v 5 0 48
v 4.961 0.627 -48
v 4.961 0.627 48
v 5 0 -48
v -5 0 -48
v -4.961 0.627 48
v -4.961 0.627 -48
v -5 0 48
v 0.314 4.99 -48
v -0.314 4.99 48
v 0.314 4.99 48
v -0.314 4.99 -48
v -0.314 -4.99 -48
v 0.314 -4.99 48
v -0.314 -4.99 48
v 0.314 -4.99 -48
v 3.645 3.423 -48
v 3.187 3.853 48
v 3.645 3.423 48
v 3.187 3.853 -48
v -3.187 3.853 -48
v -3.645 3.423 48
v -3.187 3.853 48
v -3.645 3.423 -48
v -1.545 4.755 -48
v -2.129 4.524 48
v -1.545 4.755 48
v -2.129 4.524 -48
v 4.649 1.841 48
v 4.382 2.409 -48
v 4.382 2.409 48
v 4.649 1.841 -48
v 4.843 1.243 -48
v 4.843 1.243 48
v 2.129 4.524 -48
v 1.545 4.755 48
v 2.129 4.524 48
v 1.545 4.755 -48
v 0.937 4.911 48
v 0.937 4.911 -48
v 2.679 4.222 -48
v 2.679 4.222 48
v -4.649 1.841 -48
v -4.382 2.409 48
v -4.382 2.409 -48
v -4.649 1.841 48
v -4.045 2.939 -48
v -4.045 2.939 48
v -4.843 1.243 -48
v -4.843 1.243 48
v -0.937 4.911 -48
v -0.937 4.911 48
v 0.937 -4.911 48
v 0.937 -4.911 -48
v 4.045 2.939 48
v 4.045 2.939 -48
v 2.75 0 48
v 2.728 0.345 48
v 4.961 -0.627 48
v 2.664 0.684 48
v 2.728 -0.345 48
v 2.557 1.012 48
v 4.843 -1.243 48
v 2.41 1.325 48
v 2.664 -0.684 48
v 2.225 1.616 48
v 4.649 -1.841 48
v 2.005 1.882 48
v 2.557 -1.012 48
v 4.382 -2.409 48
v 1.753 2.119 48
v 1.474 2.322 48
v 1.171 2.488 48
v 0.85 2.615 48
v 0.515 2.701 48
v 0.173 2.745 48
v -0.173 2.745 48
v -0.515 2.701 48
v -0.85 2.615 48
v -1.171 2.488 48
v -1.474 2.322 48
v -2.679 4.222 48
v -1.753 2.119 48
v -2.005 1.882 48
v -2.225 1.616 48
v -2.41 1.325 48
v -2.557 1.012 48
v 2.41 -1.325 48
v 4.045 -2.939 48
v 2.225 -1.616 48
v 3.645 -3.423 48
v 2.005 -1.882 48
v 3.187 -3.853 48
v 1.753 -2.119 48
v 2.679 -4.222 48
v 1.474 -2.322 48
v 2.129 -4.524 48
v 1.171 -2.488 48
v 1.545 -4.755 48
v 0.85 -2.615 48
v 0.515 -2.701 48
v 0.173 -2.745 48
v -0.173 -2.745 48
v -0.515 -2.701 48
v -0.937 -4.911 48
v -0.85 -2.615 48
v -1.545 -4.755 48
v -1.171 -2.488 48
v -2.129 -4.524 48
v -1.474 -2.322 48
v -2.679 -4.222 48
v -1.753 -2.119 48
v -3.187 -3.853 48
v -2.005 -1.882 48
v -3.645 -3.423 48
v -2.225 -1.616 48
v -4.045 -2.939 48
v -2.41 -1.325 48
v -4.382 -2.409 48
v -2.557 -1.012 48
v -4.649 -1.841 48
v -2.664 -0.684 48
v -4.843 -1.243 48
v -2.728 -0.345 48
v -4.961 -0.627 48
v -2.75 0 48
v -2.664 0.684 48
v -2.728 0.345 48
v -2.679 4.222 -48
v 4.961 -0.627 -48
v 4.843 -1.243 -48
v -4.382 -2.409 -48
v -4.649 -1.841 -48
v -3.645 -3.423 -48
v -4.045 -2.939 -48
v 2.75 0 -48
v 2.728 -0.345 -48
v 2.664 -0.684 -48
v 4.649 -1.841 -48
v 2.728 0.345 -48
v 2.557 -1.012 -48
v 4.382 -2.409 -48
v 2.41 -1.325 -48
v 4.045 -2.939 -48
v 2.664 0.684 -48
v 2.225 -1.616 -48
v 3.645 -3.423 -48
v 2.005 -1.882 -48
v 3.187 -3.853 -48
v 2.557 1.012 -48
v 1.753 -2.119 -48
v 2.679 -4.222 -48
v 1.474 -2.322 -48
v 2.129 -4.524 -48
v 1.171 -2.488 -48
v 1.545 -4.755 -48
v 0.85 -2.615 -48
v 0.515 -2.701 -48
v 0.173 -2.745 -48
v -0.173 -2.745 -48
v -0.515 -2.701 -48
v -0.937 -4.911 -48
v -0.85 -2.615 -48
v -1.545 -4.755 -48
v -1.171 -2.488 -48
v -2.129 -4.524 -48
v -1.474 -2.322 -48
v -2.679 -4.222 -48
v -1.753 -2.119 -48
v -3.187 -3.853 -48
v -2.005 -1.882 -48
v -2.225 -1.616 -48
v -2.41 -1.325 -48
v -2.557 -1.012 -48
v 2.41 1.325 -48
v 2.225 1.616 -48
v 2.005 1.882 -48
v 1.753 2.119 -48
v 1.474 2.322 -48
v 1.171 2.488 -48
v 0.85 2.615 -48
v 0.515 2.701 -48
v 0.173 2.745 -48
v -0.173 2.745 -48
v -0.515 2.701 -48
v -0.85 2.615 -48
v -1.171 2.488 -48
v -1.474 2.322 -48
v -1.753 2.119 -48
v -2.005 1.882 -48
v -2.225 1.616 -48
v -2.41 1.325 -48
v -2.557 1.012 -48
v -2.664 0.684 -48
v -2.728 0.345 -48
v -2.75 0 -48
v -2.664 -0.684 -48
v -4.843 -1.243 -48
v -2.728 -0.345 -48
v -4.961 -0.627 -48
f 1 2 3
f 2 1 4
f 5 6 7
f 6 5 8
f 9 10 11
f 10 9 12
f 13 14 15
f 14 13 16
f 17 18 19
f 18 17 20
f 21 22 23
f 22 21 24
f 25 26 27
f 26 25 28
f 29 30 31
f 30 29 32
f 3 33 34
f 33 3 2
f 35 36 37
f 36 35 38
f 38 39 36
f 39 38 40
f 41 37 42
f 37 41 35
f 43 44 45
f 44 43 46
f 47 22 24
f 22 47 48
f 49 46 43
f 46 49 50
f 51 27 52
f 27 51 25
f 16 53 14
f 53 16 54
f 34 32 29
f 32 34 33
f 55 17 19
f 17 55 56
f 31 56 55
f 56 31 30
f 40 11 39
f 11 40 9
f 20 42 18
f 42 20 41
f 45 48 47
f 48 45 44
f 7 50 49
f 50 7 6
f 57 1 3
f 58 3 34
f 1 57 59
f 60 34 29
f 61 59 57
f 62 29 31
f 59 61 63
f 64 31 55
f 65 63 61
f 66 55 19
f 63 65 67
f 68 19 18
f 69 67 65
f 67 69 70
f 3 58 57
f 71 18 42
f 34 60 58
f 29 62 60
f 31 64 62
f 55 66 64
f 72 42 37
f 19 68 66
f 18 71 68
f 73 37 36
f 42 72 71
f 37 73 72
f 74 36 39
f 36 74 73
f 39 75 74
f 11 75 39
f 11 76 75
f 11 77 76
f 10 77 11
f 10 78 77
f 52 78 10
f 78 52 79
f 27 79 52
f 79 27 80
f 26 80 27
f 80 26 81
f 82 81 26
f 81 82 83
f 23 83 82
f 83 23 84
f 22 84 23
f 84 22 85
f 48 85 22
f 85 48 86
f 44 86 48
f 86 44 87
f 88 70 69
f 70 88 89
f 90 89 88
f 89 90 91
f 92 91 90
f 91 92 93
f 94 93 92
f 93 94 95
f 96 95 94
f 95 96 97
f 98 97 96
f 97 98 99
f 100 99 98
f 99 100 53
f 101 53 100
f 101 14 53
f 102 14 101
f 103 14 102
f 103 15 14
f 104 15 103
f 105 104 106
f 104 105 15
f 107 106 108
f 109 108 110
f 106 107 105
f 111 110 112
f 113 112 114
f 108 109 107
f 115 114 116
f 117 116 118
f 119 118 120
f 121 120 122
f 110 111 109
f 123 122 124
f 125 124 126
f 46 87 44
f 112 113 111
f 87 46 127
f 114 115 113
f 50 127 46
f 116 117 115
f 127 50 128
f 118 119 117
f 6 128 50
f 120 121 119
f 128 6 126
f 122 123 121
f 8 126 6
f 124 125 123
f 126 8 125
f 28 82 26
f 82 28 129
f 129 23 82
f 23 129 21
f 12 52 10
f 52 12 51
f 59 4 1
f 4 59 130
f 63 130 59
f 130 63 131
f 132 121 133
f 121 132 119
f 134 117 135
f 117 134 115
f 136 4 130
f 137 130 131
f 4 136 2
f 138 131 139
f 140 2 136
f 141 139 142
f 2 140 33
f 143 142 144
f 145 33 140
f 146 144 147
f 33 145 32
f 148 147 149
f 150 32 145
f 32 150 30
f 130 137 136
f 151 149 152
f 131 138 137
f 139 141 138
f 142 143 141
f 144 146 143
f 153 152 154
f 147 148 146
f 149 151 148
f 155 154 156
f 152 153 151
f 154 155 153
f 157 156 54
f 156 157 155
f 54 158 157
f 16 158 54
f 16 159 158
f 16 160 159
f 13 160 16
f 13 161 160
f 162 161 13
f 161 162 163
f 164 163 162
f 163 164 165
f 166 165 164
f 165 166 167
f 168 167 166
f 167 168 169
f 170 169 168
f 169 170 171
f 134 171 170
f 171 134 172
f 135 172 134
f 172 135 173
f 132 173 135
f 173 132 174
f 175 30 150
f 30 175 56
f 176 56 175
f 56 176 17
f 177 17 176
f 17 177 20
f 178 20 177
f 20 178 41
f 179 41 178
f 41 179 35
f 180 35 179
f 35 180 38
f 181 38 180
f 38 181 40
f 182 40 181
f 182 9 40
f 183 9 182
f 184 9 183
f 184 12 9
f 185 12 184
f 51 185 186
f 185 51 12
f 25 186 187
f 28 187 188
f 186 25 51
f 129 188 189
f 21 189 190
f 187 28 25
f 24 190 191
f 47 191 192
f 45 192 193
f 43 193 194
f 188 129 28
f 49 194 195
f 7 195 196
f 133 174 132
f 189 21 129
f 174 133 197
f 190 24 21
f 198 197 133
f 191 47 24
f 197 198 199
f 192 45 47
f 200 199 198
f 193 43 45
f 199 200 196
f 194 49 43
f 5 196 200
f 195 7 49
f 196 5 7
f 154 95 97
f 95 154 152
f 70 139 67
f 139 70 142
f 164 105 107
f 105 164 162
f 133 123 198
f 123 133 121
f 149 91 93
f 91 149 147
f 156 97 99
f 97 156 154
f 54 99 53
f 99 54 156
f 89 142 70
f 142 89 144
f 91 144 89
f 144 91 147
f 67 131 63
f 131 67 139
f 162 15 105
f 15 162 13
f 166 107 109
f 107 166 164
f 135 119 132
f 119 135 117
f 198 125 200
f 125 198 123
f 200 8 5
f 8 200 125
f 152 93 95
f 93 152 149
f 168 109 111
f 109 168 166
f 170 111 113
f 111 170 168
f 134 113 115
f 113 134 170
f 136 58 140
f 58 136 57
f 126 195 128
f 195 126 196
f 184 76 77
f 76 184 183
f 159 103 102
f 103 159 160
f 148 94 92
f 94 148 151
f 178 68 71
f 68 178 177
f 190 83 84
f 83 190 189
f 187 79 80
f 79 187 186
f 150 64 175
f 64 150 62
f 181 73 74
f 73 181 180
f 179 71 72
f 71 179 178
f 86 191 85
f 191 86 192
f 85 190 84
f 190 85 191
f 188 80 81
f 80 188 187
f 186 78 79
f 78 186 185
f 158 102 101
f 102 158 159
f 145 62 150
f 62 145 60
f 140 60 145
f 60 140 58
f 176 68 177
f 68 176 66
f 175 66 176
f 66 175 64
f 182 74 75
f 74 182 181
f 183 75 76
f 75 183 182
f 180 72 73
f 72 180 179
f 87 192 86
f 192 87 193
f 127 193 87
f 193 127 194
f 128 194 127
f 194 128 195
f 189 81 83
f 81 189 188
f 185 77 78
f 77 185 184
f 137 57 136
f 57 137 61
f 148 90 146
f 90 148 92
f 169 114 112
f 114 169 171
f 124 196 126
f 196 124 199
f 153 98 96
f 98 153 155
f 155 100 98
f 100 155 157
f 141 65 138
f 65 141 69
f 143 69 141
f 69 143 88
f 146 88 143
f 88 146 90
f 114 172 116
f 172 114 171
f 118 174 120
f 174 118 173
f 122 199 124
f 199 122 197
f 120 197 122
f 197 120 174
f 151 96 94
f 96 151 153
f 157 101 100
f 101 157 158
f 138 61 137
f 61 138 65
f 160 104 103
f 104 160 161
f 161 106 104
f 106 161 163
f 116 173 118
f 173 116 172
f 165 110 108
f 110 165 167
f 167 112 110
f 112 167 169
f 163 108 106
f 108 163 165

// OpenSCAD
$fn = 50;


difference() {
	union() {
		translate(v = [0, 0, -48.0000000000]) {
			cylinder(h = 96, r = 5.0000000000);
		}
	}
	union() {
		translate(v = [0, 0, -100.0000000000]) {
			cylinder(h = 200, r = 2.7500000000);
		}
	}
}
